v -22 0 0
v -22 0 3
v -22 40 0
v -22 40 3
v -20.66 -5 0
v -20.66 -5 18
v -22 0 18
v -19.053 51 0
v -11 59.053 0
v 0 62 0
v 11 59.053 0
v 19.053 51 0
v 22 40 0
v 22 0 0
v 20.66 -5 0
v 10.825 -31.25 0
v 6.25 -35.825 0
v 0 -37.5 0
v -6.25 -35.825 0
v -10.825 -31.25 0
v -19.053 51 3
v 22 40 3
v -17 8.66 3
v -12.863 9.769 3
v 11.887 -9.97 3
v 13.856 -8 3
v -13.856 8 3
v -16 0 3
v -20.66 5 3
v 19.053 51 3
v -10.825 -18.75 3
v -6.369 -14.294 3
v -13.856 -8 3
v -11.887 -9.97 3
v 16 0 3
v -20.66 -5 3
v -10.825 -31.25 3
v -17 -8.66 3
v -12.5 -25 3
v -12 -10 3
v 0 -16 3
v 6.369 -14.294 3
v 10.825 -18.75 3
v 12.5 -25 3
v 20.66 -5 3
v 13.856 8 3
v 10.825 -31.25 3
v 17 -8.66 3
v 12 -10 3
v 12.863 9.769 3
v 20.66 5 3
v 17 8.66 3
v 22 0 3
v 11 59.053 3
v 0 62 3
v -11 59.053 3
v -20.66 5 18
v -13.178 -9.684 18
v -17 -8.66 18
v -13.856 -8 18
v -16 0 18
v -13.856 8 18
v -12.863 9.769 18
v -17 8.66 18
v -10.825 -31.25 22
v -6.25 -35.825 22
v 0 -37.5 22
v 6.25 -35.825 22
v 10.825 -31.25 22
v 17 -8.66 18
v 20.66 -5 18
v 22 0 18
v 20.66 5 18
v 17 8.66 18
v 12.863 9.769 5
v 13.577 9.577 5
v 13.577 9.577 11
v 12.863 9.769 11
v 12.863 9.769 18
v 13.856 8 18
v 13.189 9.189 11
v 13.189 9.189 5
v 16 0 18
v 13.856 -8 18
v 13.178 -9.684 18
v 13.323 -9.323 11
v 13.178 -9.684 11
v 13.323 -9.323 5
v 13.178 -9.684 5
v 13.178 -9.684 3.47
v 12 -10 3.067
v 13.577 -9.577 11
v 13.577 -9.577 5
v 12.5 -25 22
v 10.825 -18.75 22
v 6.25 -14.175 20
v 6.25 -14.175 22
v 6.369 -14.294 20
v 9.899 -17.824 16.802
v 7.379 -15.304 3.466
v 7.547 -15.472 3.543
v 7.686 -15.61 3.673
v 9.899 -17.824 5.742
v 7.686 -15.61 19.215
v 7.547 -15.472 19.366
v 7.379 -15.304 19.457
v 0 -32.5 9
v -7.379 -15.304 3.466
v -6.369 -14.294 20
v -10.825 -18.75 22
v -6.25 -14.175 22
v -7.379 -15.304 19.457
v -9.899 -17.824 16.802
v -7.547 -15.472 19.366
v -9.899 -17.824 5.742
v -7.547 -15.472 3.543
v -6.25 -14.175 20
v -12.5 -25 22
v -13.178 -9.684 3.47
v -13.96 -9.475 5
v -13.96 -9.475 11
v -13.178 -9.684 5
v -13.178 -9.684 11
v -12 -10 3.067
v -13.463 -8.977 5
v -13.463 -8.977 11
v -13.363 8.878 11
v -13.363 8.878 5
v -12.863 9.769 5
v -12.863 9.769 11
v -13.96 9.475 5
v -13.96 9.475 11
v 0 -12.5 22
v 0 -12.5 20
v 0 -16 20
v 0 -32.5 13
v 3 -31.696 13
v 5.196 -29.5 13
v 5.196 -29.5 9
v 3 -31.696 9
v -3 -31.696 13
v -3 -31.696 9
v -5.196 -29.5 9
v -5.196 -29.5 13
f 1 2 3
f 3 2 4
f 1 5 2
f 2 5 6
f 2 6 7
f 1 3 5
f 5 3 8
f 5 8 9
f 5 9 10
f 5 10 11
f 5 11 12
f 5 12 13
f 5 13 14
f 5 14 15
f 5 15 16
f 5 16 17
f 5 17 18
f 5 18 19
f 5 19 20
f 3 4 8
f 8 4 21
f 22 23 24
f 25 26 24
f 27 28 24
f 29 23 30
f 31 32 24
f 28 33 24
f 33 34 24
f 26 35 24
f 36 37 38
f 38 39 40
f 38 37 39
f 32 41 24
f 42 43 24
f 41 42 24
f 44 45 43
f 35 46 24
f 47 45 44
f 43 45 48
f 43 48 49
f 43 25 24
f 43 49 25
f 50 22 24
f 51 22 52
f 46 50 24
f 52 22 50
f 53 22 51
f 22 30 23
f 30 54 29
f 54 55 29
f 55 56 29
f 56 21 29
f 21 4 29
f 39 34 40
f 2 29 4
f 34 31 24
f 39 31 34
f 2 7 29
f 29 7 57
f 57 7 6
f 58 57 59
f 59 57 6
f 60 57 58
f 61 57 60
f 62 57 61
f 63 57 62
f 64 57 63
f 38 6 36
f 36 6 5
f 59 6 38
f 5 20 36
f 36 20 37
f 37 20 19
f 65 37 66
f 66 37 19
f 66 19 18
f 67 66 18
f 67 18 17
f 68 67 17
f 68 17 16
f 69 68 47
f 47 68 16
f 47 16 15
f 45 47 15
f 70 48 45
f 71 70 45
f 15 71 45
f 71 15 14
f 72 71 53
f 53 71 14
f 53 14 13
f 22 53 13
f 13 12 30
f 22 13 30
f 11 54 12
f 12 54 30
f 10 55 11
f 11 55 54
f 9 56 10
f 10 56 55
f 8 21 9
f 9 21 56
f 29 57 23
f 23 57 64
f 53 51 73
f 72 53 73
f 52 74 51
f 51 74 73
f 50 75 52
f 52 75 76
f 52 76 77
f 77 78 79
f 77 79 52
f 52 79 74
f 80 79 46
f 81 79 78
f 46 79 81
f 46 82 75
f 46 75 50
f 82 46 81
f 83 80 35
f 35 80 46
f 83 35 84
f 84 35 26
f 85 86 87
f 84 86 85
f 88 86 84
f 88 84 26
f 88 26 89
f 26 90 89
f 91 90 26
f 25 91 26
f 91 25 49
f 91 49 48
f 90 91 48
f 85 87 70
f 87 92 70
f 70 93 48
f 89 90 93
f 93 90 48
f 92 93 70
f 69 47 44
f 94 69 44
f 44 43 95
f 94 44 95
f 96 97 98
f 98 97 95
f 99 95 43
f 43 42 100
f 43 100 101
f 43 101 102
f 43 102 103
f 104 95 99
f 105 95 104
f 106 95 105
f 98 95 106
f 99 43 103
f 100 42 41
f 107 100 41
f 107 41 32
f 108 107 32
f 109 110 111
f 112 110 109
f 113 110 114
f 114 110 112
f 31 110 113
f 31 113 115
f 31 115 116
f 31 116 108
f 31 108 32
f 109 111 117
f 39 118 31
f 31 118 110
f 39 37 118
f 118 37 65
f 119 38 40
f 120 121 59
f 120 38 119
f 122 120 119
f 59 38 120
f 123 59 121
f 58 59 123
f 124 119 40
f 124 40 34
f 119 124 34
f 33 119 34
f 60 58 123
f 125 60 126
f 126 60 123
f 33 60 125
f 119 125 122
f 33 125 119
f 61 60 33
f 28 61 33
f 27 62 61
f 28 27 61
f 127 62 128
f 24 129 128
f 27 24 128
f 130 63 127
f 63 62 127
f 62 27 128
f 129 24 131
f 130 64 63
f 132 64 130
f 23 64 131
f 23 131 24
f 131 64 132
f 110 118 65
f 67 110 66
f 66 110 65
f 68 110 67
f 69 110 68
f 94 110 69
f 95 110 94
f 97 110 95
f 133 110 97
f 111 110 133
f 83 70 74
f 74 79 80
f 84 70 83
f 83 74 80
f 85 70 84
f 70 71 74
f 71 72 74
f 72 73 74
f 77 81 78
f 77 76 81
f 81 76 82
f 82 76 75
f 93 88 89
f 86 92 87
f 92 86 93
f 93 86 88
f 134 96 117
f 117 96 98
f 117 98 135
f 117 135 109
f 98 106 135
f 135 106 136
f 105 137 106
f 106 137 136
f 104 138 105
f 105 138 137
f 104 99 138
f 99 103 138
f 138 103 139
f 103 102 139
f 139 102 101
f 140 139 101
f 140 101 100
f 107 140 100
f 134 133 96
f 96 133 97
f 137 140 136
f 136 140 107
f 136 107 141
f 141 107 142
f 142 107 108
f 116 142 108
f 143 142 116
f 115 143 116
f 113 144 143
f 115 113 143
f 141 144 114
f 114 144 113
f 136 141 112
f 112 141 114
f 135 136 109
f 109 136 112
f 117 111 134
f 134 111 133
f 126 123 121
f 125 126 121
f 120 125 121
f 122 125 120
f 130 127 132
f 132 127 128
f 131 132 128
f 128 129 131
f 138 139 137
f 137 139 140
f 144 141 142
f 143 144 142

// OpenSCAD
overall_width = 155;
overall_height = 141;
overall_depth = 49;

center_line = overall_width/2;

$fn = 12;

//%bounding_box();

//color("SlateGray")
//back_plate();
//
//translate([overall_width/2, 72, overall_depth+1])
//rotate([0, 0, 180])
//quad();

mount();

module mount() {
	hull() {
			translate([0, -25, 0])
			cylinder(h=3, d=25);
		
			translate([12, 0, 0])
			cylinder(h=3, d=20);
		
			translate([-12, 0, 0])
			cylinder(h=3, d=20);

			translate([0, 40, 0])
			cylinder(h=3, d=44);
	}



	difference() {
		union() {
			translate([0, -25, 0])
			cylinder(h=22, d=25);
		
			translate([12, 0, 0])
			cylinder(h=18, d=20);
		
			translate([-12, 0, 0])
			cylinder(h=18, d=20);
		}
	
		rotate([0, 0, 180])
		quad();
	}
}


module bounding_box() {
	cube([overall_width, overall_height, overall_depth]);
	translate([center_line-0.5, 0, 0])
	cube([1, overall_height, overall_depth]);
}

module back_plate() {
	lower_width = 104.5;
	lower_height = 71;

	upper_width = 41;
	upper_height = 134;

	bevel_width = 2;

	depth = 6;

	difference() {
		union() {
			hull() {
				lower_plate();
				lower_plate_bevel();
			}
			hull() {
				upper_plate();
				upper_plate_bevel();
			}
			fillets();

		}

		// this mask can be removed later
		cube([overall_width, overall_height, overall_depth-depth]);
	}


	module lower_plate() {
		hull() {
			difference() {
				translate([center_line-lower_width/2, depth, overall_depth-depth])
				rotate([0, 90, 0])
				cylinder(h = lower_width, r = depth);
	
			}
			
			translate([center_line-lower_width/2+2, 71-2, overall_depth-depth])
			cylinder(h = depth, r = 2);
		
			translate([center_line+lower_width/2-2, 71-2, overall_depth-depth])
			cylinder(h = depth, r = 2);
		}
	}

	module lower_plate_bevel() {
		lower_width = lower_width+bevel_width*2;
		translate([center_line-lower_width/2, 0, overall_depth-depth-1])
		cube([lower_width, lower_height+bevel_width, 1]);
	}

	module upper_plate() {
		hull() {
			translate([center_line-upper_width/2+1, upper_height-1, overall_depth-depth])
			cylinder(h = depth, r = 1);
		
			translate([center_line+upper_width/2-1, upper_height-1, overall_depth-depth])
			cylinder(h = depth, r = 1);
		
			translate([center_line-upper_width/2, 10, overall_depth-depth])
			cube([upper_width, 10, depth]);
		}
	}

	module upper_plate_bevel() {
		upper_width = upper_width+bevel_width*2;
		translate([center_line-upper_width/2, 0, overall_depth-depth-1])
		cube([upper_width, upper_height+bevel_width, 1]);
	}

	module fillets() {
		// left
		translate([center_line-upper_width/2-2, lower_height, overall_depth-depth])
		difference() {
			cube([2, 2, depth]);
	
			translate([0, 2, 0])
			cylinder(h = depth, r = 2);
		}

		// right
		translate([center_line+upper_width/2, lower_height, overall_depth-depth])
		difference() {
			cube([2, 2, depth]);
	
			translate([2, 2, 0])
			cylinder(h = depth, r = 2);
		}
	}
}

module quad() {
	pillar_width=9;
	pillar_distance=75;

	module prop() {
		translate([0, 0, 4])
		sphere(d=4);
		rotate([0, 0, 45])
		translate([0, -49/2, 0])
		hull() {
			cylinder(h=3, d=9);
			translate([0, 58-9, 0])
			cylinder(h=3, d=9);
		}
	}

	module pillar() {
		cylinder(h=11, d=pillar_width);
		cylinder(h=23, d=8);
		translate([0, 0, 23])
		prop();
		%translate([0, 0, 8]) cylinder(h=20, d=70);
	}

	module body() {
		hull() {
			translate([pillar_distance/2, pillar_distance/2, 3])
			cylinder(h=17, d=32);
	
			translate([pillar_distance/2, 9+4, 3])
			cylinder(h=10, d=8);
	
			translate([pillar_distance/2, 75-11, 9])
			cylinder(h=4, d=12);
		}

		translate([2, 6, 11-6])
		rotate([0, 0, -45])
		cube([6, 95, 6]);
	
		translate([69, 2, 11-6])
		rotate([0, 0, 45])
		cube([6, 95, 6]);
	}

	translate([-pillar_distance/2, -pillar_distance/2, 0])
	union() {
		body();
	
		translate([pillar_width/2, pillar_width/2, 0])
		pillar();
	
		translate([pillar_distance-pillar_width/2, pillar_width/2, 0])
		pillar();
	
		translate([pillar_distance-pillar_width/2, pillar_distance-pillar_width/2, 0])
		pillar();
	
		translate([pillar_width/2, pillar_distance-pillar_width/2, 0])
		pillar();
	}
}
